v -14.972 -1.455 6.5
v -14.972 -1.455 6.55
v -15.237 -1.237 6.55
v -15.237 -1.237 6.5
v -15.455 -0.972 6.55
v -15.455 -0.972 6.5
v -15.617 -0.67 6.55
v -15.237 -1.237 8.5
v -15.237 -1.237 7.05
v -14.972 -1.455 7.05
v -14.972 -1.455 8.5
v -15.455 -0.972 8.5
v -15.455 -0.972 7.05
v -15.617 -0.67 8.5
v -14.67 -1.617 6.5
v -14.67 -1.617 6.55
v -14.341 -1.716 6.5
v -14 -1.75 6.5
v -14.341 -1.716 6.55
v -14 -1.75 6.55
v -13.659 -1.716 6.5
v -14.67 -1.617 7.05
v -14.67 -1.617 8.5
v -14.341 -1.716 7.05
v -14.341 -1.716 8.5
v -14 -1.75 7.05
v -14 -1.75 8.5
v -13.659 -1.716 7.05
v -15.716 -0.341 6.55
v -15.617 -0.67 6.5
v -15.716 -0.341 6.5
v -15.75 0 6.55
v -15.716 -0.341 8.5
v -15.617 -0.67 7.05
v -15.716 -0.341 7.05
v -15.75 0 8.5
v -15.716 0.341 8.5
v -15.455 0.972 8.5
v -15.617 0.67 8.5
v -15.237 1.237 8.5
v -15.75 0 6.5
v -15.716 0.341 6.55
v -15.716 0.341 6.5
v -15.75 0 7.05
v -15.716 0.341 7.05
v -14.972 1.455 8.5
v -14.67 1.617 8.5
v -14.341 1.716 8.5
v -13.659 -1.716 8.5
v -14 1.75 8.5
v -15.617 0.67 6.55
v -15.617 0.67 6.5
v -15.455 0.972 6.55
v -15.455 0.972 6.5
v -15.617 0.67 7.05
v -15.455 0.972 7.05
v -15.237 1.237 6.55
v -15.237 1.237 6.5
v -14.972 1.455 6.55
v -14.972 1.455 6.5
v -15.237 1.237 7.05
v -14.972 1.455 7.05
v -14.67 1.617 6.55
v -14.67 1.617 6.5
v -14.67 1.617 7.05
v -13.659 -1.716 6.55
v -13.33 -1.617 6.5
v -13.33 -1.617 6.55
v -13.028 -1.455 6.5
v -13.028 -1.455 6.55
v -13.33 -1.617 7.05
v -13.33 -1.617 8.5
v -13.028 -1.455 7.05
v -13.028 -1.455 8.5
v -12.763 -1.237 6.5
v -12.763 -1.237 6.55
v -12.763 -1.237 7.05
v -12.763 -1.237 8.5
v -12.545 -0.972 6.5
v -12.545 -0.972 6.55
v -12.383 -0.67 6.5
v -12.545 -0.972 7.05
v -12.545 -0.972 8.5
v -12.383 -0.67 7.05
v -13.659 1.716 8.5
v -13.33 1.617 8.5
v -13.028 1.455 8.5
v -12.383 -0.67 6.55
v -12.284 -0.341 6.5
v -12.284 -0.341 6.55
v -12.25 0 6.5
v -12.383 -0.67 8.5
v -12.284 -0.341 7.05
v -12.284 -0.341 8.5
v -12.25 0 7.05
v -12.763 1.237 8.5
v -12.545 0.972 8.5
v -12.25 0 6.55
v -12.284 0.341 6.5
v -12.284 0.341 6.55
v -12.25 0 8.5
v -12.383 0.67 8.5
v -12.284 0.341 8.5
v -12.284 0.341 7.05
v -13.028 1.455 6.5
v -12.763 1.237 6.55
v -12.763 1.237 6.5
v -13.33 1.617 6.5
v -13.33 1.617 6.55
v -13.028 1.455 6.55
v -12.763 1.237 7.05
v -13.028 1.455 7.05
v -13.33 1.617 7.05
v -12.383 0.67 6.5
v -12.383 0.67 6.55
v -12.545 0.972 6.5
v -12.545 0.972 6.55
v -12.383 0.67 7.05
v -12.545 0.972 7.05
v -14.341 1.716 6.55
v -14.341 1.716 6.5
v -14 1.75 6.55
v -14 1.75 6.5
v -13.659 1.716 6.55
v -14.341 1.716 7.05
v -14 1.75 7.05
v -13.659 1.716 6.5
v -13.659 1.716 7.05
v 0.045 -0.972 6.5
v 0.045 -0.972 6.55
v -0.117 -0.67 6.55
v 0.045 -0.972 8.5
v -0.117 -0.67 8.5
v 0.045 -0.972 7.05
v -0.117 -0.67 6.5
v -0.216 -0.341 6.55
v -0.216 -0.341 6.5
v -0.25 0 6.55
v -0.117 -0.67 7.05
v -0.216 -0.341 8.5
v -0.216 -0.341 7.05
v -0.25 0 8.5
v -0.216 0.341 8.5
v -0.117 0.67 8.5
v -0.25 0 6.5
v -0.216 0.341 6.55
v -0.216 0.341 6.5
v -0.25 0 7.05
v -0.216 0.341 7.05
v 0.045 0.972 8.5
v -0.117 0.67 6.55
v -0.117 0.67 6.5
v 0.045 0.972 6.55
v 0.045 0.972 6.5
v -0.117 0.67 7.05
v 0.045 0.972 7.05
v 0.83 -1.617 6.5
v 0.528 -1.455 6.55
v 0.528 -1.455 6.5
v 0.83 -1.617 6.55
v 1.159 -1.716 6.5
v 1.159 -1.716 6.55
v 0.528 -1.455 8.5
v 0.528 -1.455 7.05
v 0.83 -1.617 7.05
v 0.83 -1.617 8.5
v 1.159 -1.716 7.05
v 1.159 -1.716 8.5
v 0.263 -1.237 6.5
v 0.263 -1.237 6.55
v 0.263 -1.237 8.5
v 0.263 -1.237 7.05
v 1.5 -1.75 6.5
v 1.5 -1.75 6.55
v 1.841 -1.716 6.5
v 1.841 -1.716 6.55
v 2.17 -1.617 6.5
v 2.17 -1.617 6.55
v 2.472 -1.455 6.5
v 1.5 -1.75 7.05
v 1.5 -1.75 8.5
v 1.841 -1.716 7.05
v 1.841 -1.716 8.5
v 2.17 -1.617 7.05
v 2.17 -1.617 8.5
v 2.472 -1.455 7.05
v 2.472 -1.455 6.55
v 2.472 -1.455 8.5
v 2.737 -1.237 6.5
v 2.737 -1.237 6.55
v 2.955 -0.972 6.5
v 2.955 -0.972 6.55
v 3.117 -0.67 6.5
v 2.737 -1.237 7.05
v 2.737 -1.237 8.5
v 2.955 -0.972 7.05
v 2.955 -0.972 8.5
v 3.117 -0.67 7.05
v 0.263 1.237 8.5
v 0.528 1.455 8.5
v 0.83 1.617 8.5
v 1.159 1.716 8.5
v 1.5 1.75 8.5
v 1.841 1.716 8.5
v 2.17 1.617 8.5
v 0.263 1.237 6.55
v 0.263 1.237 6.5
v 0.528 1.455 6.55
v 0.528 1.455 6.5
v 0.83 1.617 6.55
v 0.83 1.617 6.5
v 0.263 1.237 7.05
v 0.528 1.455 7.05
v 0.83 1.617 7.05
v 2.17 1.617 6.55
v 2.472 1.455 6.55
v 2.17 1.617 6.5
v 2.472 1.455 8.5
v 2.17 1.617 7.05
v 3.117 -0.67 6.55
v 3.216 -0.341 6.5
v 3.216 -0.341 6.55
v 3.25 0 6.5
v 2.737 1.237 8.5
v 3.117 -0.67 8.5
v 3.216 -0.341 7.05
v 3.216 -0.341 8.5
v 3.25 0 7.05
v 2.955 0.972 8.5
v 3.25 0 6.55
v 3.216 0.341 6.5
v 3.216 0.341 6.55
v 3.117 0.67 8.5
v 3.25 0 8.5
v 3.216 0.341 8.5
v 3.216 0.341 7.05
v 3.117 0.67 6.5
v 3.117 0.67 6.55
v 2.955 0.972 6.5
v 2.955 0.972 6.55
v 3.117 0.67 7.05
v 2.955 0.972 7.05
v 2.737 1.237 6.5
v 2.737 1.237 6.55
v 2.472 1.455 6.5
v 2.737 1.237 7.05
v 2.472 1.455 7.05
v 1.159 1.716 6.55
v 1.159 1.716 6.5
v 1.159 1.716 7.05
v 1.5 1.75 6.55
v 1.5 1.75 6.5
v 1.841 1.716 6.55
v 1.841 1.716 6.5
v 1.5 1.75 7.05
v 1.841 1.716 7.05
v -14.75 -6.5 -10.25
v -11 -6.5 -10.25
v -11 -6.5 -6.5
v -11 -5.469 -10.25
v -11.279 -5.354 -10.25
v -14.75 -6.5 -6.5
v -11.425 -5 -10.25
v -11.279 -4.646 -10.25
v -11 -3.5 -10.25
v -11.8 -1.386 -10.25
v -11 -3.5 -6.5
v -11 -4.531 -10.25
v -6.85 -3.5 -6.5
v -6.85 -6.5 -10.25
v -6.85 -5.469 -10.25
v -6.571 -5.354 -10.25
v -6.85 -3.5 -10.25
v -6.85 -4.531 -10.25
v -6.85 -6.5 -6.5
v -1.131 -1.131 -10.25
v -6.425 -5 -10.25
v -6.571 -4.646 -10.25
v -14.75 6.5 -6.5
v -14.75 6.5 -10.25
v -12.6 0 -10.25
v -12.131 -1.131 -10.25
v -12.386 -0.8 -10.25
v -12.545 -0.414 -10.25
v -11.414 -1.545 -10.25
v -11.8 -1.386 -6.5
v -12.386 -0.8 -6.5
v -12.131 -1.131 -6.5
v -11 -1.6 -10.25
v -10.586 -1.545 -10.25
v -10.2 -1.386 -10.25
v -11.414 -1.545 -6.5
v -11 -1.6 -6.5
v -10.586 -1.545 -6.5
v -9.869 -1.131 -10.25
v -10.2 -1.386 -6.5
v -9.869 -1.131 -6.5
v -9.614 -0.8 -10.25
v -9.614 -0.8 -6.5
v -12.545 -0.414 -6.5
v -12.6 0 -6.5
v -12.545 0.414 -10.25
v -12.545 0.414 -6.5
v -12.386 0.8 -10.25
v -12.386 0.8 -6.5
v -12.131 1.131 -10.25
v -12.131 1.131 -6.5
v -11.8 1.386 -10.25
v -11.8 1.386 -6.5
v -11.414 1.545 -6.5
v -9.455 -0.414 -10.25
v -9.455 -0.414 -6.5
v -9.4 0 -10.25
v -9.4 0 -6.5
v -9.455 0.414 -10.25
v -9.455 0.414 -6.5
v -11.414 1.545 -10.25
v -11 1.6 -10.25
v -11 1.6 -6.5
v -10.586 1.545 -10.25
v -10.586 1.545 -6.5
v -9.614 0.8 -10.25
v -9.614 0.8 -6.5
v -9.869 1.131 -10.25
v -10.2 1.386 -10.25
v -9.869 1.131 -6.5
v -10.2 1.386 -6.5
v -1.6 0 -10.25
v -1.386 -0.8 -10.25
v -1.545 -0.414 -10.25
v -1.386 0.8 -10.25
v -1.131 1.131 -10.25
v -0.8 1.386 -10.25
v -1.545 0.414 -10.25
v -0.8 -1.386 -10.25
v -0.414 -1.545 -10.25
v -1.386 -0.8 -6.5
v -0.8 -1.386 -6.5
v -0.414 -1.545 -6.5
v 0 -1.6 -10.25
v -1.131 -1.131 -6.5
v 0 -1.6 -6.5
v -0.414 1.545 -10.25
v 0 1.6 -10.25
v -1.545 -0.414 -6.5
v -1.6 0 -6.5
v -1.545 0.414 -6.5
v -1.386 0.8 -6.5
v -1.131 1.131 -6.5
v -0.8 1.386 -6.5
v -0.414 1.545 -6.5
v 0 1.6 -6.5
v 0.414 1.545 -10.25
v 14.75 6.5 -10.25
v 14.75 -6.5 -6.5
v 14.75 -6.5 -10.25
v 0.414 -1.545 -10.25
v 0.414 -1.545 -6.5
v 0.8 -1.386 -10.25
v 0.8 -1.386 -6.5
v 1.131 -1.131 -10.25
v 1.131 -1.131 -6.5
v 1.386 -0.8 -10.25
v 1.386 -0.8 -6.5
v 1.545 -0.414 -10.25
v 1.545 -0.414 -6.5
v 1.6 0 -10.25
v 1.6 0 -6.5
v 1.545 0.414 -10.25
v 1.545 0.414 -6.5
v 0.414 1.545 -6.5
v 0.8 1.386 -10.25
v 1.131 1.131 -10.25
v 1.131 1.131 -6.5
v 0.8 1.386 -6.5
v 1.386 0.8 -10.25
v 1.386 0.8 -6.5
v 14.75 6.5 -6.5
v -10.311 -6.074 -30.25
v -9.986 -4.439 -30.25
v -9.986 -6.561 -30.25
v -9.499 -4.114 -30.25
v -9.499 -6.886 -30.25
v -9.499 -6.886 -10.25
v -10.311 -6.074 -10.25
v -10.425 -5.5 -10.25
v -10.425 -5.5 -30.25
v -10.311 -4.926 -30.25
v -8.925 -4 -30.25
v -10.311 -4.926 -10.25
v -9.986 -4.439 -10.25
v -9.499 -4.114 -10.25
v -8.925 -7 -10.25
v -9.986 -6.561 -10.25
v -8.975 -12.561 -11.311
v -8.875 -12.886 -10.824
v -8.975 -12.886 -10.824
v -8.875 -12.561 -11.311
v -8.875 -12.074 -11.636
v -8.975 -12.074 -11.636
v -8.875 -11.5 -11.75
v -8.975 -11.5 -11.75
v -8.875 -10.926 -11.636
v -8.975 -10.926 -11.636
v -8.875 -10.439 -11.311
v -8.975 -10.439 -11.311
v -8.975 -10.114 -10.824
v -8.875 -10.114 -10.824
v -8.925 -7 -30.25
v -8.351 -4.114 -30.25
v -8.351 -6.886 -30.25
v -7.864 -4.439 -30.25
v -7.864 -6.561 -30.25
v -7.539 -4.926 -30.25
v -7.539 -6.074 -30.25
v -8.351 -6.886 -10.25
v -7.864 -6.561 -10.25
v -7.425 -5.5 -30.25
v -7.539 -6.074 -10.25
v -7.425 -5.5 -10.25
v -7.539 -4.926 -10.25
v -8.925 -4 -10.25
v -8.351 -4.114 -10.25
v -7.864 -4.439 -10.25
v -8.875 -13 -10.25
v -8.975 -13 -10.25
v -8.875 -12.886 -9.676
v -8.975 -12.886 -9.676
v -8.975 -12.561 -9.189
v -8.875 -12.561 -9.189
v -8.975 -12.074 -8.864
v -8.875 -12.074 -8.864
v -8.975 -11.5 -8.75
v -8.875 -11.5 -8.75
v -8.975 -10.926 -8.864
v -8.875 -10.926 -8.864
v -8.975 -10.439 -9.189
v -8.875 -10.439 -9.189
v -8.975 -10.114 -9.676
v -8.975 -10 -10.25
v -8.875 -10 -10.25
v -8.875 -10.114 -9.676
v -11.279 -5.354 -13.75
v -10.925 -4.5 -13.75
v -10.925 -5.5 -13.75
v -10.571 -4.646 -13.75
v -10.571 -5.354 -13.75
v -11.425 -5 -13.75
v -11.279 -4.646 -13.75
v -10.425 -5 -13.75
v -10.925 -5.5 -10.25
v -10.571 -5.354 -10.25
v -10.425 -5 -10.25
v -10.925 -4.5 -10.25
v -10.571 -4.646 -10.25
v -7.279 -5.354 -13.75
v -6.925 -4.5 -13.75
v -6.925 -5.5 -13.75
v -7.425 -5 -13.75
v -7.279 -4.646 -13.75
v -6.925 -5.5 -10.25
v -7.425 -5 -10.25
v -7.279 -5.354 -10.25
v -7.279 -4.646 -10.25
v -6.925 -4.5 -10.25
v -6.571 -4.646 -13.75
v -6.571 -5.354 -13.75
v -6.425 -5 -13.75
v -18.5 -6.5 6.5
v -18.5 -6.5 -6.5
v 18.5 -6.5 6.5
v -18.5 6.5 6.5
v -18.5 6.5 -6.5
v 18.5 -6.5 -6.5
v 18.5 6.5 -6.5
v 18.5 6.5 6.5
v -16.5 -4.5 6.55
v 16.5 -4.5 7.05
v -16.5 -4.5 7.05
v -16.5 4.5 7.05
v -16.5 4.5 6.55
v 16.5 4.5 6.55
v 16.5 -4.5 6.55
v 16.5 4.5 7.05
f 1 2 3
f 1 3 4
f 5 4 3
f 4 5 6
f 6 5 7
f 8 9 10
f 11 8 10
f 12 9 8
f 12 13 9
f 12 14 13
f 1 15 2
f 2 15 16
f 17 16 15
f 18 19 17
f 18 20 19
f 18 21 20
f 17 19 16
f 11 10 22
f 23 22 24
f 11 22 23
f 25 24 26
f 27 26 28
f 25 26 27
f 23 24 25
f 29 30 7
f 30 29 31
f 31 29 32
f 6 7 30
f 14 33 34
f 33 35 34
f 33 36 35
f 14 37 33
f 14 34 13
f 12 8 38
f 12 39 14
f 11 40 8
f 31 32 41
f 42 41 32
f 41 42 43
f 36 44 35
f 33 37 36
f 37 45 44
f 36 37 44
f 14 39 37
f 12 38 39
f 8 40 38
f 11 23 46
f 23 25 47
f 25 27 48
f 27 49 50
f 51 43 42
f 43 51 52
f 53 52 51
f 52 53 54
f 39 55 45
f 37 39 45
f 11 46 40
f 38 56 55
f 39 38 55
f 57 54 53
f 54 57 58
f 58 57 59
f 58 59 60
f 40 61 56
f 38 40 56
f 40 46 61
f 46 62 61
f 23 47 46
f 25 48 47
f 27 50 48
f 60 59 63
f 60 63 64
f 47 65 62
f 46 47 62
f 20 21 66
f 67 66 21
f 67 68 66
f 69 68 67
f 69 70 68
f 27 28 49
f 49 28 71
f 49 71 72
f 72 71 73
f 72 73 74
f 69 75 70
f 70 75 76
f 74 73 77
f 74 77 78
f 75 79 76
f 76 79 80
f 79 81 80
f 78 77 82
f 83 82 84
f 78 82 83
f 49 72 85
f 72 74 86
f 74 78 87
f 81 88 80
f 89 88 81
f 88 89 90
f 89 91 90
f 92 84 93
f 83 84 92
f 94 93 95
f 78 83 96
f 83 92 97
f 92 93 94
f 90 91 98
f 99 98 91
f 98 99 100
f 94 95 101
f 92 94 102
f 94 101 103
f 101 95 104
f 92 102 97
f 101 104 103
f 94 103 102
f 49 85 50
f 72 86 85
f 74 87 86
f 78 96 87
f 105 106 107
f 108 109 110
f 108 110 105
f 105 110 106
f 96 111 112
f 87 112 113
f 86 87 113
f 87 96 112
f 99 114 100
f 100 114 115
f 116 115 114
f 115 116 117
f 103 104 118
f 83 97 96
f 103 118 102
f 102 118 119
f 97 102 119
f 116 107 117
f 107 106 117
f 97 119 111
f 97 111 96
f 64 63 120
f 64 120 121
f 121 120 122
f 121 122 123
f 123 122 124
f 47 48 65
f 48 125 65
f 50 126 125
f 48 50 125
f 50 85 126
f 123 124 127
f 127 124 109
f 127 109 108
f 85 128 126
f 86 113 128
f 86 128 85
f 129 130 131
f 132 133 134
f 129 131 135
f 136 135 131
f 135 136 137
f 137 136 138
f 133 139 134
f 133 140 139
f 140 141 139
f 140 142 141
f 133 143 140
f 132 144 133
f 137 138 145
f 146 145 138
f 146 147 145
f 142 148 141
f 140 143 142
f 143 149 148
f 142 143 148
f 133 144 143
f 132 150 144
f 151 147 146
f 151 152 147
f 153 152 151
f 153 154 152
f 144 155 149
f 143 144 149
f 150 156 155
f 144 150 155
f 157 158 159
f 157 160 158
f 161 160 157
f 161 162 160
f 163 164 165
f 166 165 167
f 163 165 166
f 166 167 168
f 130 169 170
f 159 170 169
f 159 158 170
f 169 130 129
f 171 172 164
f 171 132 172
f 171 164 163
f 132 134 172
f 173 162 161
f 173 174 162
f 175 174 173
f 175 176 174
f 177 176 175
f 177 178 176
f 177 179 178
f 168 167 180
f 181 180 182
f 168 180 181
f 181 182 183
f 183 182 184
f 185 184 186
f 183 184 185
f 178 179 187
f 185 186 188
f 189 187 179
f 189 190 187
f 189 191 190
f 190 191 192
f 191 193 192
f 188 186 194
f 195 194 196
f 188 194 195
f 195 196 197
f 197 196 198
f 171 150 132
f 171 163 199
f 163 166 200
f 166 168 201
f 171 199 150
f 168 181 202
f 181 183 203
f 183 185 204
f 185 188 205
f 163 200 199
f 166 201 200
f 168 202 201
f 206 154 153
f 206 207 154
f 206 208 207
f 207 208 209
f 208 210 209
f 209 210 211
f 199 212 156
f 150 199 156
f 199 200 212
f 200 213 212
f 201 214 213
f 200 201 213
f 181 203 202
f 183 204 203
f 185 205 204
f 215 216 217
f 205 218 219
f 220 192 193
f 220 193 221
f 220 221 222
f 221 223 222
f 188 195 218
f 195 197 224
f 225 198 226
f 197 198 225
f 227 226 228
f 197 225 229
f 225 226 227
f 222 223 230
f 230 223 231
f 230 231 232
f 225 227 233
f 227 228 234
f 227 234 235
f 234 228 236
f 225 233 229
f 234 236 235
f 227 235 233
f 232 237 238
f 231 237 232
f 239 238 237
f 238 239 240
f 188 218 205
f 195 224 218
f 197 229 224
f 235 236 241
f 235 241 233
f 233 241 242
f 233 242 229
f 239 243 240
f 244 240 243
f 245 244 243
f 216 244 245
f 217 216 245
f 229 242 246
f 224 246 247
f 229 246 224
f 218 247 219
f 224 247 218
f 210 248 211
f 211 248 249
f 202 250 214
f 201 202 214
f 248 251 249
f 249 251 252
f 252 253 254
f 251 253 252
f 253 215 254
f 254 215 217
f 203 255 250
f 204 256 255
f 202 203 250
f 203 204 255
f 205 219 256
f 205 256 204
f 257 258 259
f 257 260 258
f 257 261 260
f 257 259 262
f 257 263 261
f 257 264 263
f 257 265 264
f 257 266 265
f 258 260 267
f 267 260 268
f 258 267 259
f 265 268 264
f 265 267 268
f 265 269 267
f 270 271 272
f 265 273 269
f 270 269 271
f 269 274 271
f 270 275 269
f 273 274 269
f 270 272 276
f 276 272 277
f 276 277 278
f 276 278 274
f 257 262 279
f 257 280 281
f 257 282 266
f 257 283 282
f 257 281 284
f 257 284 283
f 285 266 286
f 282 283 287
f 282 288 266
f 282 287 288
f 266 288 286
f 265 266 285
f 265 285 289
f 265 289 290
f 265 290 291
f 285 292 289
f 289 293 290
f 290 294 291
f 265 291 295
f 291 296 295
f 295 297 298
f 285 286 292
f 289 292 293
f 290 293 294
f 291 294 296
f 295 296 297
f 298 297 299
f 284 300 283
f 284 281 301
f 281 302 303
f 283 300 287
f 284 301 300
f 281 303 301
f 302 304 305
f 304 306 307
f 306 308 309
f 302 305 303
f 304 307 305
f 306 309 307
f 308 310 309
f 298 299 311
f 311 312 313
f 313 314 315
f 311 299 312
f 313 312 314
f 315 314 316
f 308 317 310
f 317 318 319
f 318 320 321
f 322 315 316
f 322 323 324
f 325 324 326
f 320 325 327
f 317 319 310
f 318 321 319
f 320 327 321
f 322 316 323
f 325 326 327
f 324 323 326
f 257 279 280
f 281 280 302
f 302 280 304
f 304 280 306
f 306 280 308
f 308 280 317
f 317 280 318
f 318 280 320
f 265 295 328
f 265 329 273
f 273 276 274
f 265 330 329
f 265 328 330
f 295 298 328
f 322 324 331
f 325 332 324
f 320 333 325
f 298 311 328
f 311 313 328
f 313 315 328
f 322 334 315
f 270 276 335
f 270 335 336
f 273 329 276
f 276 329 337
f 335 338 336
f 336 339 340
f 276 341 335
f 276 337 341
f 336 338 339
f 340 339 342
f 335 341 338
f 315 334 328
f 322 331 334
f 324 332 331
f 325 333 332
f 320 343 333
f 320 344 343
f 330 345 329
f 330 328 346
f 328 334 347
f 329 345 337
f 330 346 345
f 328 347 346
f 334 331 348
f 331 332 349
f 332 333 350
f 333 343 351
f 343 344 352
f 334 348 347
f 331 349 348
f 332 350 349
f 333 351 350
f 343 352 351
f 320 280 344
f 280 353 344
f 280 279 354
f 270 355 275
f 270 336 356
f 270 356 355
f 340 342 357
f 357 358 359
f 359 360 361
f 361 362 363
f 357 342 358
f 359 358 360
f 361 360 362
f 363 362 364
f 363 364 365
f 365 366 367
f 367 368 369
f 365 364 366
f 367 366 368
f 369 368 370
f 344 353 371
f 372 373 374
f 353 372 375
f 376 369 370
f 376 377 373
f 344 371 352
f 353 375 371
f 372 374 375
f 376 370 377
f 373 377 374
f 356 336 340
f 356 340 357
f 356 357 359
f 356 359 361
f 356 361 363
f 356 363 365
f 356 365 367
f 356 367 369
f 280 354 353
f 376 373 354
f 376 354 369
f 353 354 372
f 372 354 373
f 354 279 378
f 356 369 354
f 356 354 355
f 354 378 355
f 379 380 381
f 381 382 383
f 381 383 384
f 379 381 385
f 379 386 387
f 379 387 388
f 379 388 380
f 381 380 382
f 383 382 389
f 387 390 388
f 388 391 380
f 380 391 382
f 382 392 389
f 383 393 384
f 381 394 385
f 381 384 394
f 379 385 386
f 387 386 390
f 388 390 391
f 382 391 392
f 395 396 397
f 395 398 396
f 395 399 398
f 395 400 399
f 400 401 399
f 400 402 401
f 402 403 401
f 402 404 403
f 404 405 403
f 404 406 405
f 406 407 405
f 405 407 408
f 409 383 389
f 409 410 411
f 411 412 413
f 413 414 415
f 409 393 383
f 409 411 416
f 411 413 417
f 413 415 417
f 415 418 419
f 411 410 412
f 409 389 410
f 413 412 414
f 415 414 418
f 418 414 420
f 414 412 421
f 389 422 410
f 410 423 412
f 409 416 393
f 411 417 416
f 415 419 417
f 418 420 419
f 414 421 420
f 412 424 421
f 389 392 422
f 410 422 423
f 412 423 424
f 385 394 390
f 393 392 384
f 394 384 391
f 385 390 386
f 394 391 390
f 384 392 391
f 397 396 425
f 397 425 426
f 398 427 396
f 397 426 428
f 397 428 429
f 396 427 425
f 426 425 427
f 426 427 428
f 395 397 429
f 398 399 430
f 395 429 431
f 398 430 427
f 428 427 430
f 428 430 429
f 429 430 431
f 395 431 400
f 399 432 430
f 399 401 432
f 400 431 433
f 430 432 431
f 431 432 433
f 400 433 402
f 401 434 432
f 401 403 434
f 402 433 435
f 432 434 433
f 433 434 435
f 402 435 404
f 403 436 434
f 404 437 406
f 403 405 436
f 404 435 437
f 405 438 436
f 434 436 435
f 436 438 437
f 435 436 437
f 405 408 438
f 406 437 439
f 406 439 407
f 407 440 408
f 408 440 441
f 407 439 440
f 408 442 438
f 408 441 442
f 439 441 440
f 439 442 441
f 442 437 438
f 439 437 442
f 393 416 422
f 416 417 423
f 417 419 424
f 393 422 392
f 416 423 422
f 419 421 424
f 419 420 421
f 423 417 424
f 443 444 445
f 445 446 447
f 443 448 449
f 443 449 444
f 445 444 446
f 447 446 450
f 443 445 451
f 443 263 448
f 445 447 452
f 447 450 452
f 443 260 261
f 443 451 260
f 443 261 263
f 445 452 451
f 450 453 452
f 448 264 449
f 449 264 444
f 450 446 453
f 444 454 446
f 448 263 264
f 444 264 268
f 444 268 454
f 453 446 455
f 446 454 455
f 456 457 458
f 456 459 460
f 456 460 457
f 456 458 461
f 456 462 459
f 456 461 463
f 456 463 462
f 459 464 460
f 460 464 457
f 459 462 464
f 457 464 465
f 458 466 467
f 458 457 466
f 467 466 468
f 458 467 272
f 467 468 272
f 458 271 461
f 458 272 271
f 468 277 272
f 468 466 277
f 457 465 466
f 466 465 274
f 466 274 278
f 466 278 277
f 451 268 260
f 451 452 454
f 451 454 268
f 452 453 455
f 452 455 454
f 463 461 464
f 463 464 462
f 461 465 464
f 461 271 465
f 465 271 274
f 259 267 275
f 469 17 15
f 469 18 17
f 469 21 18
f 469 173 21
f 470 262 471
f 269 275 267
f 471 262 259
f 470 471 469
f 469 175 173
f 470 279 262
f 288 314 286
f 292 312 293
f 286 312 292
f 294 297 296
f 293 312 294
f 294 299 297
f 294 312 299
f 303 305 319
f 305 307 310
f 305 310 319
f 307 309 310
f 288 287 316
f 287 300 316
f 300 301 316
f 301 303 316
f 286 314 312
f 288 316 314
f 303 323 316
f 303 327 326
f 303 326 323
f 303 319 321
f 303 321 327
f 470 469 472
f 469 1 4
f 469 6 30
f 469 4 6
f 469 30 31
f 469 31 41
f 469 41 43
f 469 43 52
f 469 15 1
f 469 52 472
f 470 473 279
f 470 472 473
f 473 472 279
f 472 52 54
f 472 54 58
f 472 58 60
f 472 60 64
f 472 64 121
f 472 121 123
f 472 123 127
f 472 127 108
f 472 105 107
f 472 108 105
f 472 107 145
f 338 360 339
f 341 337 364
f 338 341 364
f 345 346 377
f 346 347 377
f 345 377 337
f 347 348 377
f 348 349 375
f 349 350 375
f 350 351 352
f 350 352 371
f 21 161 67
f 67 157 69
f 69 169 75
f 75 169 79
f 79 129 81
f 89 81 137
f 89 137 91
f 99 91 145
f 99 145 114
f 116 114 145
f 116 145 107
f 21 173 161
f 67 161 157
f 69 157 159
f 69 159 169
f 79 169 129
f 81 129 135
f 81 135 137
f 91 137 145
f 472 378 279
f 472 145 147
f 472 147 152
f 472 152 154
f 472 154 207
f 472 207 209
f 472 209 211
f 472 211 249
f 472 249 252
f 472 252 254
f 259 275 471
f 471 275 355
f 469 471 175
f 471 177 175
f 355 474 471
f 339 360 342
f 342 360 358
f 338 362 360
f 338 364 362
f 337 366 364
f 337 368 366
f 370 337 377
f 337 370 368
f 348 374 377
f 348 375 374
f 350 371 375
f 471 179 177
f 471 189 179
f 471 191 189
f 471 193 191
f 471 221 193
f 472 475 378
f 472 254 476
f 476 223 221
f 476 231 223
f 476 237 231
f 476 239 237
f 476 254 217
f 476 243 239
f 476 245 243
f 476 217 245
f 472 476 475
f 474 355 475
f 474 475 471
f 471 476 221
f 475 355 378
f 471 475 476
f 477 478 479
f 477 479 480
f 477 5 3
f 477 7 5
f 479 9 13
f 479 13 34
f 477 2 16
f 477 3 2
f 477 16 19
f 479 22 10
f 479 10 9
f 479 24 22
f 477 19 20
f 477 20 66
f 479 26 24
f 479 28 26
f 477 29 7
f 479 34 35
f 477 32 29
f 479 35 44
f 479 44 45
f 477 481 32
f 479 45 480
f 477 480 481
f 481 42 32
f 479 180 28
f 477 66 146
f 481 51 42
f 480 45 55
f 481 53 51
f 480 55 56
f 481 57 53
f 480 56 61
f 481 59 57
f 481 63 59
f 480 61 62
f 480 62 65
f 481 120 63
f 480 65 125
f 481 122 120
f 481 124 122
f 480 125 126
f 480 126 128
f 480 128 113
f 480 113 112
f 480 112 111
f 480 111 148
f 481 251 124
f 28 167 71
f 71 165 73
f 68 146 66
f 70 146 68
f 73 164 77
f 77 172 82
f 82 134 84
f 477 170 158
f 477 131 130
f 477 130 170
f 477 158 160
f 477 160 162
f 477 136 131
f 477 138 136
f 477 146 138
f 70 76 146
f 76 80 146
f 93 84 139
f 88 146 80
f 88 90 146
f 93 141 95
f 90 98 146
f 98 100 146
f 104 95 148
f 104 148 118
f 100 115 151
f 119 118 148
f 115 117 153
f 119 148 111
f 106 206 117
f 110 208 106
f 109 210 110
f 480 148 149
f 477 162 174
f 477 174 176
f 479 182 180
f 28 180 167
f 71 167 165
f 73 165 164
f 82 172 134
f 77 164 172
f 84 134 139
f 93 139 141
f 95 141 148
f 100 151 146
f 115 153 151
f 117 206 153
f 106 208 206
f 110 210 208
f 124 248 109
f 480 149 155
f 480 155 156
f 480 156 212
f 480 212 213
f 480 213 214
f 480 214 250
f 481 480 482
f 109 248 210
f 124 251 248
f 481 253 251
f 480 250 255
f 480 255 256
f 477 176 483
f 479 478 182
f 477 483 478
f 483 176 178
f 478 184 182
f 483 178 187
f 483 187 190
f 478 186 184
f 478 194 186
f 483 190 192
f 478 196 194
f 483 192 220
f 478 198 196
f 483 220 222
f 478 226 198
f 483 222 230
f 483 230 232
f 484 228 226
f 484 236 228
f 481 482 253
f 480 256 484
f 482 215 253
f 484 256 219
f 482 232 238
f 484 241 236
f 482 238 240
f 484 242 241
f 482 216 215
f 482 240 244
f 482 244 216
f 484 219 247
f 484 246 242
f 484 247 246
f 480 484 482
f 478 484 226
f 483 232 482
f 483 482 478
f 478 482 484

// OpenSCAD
// Sharp GP2Y0A21YK0F Distance Sensor - External Dimensions Model
// Units: mm
// Coordinate system: center of main body at origin, +Z up, +Y forward

// Key dimensions from datasheet
// Overall width (X): 37mm
// Overall depth (Y): 13mm (lens case depth)
// Main body height (Z): ~13mm (from bottom of bar to top of lens case)

// Body dimensions
body_w = 37;       // total width X
body_d = 13;       // depth Y (reference dimension 13, shown as (18.9-25) includes lens protrusion?)
body_h = 13;       // height Z of main rectangular case portion

// From side view:
// Total height including lens protrusion ~ (18.9-25) is reference for lens center positions
// Main case height: 13mm
// Lens case extends above: 6.3mm total? 
// From the side view: 6.3 (top), 2 (next), 8.4 / 7.2 are internal divisions
// The case appears to be ~13mm tall
// Lens protrusion above case top: ~2mm

// From front view dimensions:
// Width: 37mm total
// Lens emitter center: 4.5mm from left edge (x position)
// Lens detector center: *20±0.1mm from left edge  
// Bar (connector area) extends below main case
// Bar width: 29.5mm (centered?)
// Bar dimensions from bottom view: 7.5 | 4.15 | 16.3  => positions along x

// Heights (Z) from side view:
// Total side height: (18.9~25) reference - this is lens center height range?
// From bottom: PWB 1.2mm, then (3.3) reference, then main body
// Lens case top portion: 6.3mm, step: 2mm, then 8.4 or 7.2mm body

// Let me re-read carefully:
// Side view right side shows: 6.3, 2, then 8.4/7.2 stacked, then 1.2(PWB), (3.3)
// 6.3 = top of lens protrusion height
// 2 = step between lens top and body top
// 8.4 = main body height? or 7.2?
// 1.2 = PWB/connector part below
// (3.3) = reference below

// From the drawing interpretation:
// Main body (lens case box): width=37, depth=13, height=8.4 (or 7.2)
// Lens protrudes above by: 2mm step + 6.3mm = looks like lens housing is 6.3 tall above a 2mm ledge
// Actually: the right side shows dimensions 6.3 and 2 at top, meaning:
//   lens protrusion = 6.3mm total height above body
//   or: 6.3 from some reference, 2mm is a ledge

// Best interpretation based on typical GP2Y0A21 physical measurements:
// Main body: 37 x 13 x 13 mm (W x D x H)  
// Lens protrusion above body: ~2mm
// Connecting bar below: 29.5mm wide, ~3mm tall, extending down from body bottom

// Mounting bar / connector tab dimensions from bottom view:
// 7.5 from left | 4.15 wide | 16.3 to right
// Bar height (Z): ~2.5mm
// Bar total width: 29.5mm  
// Bar depth (Y): same as body ~13mm? or smaller

// Mounting holes: ø3.2, at positions shown
// Left lens (emitter): center at x = 4.5 from left => from center: 4.5 - 37/2 = -14.0
// Right lens (detector): center at x = 20 from left => from center: 20 - 37/2 = 1.5
// Both lenses: R1.75 (diameter 3.5mm)

// Connector/cable at bottom center-ish

// Let me define origin at body center, Z=0 at body bottom face

// === Dimensions ===
bw = 37;    // body width X
bd = 13;    // body depth Y  
bh = 13;    // body height Z (main case)

// Lens protrusion
lens_h = 2.0;   // how much lenses protrude above body top
lens_emitter_r = 1.75;    // emitter lens radius
lens_detector_r = 1.75;   // detector lens radius (ø3.2 hole, R1.75)

// Lens center X positions (from left edge of body)
emitter_x_from_left = 4.5;
detector_x_from_left = 20.0;

// Convert to centered coords
emitter_cx = emitter_x_from_left - bw/2;   // = 4.5 - 18.5 = -14.0
detector_cx = detector_x_from_left - bw/2; // = 20.0 - 18.5 = 1.5

// Lens Y position: centered in body depth, slightly toward front
lens_cy = 0;  // centered in Y

// Connecting bar dimensions
bar_w = 29.5;       // width of bar
bar_h = 3.75;       // height of bar below body (from "3.75" in front view)
bar_d = bd;         // same depth as body

// Mounting holes in bar
// From front view: holes at 3.75 below body bottom, at X positions
// Left hole at ~3.75 from left of bar, right hole 
// Bar left edge from body left edge: (bw - bar_w)/2 = (37-29.5)/2 = 3.75
bar_left_x = -bw/2 + (bw - bar_w)/2;  // = -18.5 + 3.75 = -14.75
// Mounting hole positions: shown in front view
// "10|1" and "14.75" from front view - hole spacing
// Left hole at 3.75 from left of bar? 
// Right hole - the "14.75" total from something
// Let's place holes symmetrically based on drawing
// "1" center mark at 10mm from left, another at 10+1=11? 
// Interpreting: two holes, one at 10mm from left bar edge, one near right
// From "10|1" label and "14.75": hole centers at X= bar_left_x+3.75+... 
// More careful: front view shows R3.75 circles (mounting holes) and dimension 10|1 and 14.75
// The "R3.75" might be corner radius, and ø3.2 is hole diameter
// mounting hole left: at x = bar_left_x + 3.75 from bar left = -14.75+3.75 = -11
// Hmm, let me just place them based on "3.75" spacing from edges and "14.75" span

mount_hole_r = 3.2/2;  // ø3.2 mounting holes
// From drawing the two mounting holes seem to be at:
// Left hole:  x ~ -14.75 + 3.75 = -11  (3.75 from left edge of bar)
// Right hole: x ~ -14.75 + 14.75 - 3.75? 
// The "14.75" dimension in front view appears to span from left bar edge to right hole center
// or between centers. Let's say:
mount_hole_left_x  = bar_left_x + 3.75;         // ~ -11.0
mount_hole_right_x = bar_left_x + 14.75 - 3.75; // ~ -3.75... 
// Actually the dimension "14.75" might be from left of body (not bar):
// mount right = -18.5 + 14.75 = -3.75
// mount left = from "10|1": at 10-18.5 = -8.5? and spacing 1mm? that seems small
// Let me interpret: left hole at x=-14.75+3.75 = from bar left + 3.75
// 14.75 from bar left to right hole center: right hole at bar_left_x + 14.75

mh_left_x  = bar_left_x + 3.75;
mh_right_x = bar_left_x + 14.75;
mh_y       = 0;   // centered in Y
mh_z       = -bh/2 - bar_h/2;  // in middle of bar height

// Cable notch / cutout in bar
notch_w = 4.15;  // from bottom view "4.15"
notch_x = -bw/2 + 7.5 + 4.15/2;  // 7.5 from left, then 4.15 wide
// bottom view: 7.5 | 4.15 | 16.3 along bar
notch_d = 3;    // depth of notch in Y (guessed)
notch_h = bar_h + 0.1; // full bar height

// Cable (simplified as cylinder)
cable_r = 1.5;
cable_len = 20;

// Connector pins (simplified) from bottom view "①②③"
// 3 pins in row at connector area
pin_spacing = 2.0;
pin_r = 0.5;
pin_h = 3.5;  // 2.5+1 from side view "2.5" and "1"
// Pins centered at notch_x, bottom of bar

// === Colors ===
body_color = [0.2, 0.2, 0.2, 1.0];   // dark gray ABS
lens_color = [0.1, 0.1, 0.1, 0.8];   // dark lens (visible light cut-off)
cable_color = [0.8, 0.6, 0.0, 1.0];  // yellow cable

module body() {
    color(body_color) {
        // Main rectangular body case
        translate([0, 0, 0])
            cube([bw, bd, bh], center=true);
    }
}

module lens_protrusions() {
    color(lens_color) {
        // Emitter lens (left) - circular cylindrical protrusion
        translate([emitter_cx, lens_cy, bh/2 + lens_h/2])
            cylinder(r=lens_emitter_r, h=lens_h, center=true, $fn=32);
        
        // Detector lens (right) - circular cylindrical protrusion  
        translate([detector_cx, lens_cy, bh/2 + lens_h/2])
            cylinder(r=lens_detector_r, h=lens_h, center=true, $fn=32);
    }
}

module lens_windows() {
    // Slight indentation / window on top face to show lens apertures
    color([0.15, 0.15, 0.15])
    {
        // Emitter window (slightly recessed into top)
        translate([emitter_cx, lens_cy, bh/2 - 0.5])
            cylinder(r=lens_emitter_r - 0.3, h=1.1, center=true, $fn=32);
        // Detector window 
        translate([detector_cx, lens_cy, bh/2 - 0.5])
            cylinder(r=lens_detector_r - 0.3, h=1.1, center=true, $fn=32);
    }
}

module connecting_bar() {
    color(body_color) {
        difference() {
            // Bar body
            translate([bar_left_x + bar_w/2, 0, -bh/2 - bar_h/2])
                cube([bar_w, bar_d, bar_h], center=true);
            
            // Left mounting hole
            translate([mh_left_x, mh_y, mh_z])
                cylinder(r=mount_hole_r, h=bar_h + 0.1, center=true, $fn=24);
            
            // Right mounting hole
            translate([mh_right_x, mh_y, mh_z])
                cylinder(r=mount_hole_r, h=bar_h + 0.1, center=true, $fn=24);
            
            // Cable cutout notch (open slot from front face)
            translate([notch_x, -bar_d/2, -bh/2 - bar_h/2])
                cube([notch_w, notch_d*2, bar_h + 0.2], center=true);
        }
    }
}

module cable() {
    color(cable_color) {
        // Cable coming out of notch downward (simplified)
        translate([notch_x, -bd/2 + 1, -bh/2 - bar_h - cable_len/2])
            cylinder(r=cable_r, h=cable_len, center=true, $fn=16);
        
        // Small bend toward front
        translate([notch_x, -bd/2 - cable_len/4, -bh/2 - bar_h])
            rotate([0, 90, 0])
            cylinder(r=cable_r, h=0.1, center=true, $fn=16);
    }
}

module connector_pins() {
    // 3 connector pins at bottom of bar (simplified)
    color([0.9, 0.9, 0.0]) {
        for (i = [-1, 0, 1]) {
            translate([notch_x + i * pin_spacing, -bd/2 + 1.5, -bh/2 - bar_h - pin_h/2])
                cylinder(r=pin_r, h=pin_h, center=true, $fn=8);
        }
    }
}

module top_label_ridge() {
    // Slight ridge/stamp area on top (simplified)
    color([0.25, 0.25, 0.25])
    translate([0, 0, bh/2 + 0.3])
        cube([bw - 4, bd - 4, 0.5], center=true);
}

// === Assembly ===
union() {
    body();
    lens_protrusions();
    connecting_bar();
    cable();
    connector_pins();
    top_label_ridge();
}
